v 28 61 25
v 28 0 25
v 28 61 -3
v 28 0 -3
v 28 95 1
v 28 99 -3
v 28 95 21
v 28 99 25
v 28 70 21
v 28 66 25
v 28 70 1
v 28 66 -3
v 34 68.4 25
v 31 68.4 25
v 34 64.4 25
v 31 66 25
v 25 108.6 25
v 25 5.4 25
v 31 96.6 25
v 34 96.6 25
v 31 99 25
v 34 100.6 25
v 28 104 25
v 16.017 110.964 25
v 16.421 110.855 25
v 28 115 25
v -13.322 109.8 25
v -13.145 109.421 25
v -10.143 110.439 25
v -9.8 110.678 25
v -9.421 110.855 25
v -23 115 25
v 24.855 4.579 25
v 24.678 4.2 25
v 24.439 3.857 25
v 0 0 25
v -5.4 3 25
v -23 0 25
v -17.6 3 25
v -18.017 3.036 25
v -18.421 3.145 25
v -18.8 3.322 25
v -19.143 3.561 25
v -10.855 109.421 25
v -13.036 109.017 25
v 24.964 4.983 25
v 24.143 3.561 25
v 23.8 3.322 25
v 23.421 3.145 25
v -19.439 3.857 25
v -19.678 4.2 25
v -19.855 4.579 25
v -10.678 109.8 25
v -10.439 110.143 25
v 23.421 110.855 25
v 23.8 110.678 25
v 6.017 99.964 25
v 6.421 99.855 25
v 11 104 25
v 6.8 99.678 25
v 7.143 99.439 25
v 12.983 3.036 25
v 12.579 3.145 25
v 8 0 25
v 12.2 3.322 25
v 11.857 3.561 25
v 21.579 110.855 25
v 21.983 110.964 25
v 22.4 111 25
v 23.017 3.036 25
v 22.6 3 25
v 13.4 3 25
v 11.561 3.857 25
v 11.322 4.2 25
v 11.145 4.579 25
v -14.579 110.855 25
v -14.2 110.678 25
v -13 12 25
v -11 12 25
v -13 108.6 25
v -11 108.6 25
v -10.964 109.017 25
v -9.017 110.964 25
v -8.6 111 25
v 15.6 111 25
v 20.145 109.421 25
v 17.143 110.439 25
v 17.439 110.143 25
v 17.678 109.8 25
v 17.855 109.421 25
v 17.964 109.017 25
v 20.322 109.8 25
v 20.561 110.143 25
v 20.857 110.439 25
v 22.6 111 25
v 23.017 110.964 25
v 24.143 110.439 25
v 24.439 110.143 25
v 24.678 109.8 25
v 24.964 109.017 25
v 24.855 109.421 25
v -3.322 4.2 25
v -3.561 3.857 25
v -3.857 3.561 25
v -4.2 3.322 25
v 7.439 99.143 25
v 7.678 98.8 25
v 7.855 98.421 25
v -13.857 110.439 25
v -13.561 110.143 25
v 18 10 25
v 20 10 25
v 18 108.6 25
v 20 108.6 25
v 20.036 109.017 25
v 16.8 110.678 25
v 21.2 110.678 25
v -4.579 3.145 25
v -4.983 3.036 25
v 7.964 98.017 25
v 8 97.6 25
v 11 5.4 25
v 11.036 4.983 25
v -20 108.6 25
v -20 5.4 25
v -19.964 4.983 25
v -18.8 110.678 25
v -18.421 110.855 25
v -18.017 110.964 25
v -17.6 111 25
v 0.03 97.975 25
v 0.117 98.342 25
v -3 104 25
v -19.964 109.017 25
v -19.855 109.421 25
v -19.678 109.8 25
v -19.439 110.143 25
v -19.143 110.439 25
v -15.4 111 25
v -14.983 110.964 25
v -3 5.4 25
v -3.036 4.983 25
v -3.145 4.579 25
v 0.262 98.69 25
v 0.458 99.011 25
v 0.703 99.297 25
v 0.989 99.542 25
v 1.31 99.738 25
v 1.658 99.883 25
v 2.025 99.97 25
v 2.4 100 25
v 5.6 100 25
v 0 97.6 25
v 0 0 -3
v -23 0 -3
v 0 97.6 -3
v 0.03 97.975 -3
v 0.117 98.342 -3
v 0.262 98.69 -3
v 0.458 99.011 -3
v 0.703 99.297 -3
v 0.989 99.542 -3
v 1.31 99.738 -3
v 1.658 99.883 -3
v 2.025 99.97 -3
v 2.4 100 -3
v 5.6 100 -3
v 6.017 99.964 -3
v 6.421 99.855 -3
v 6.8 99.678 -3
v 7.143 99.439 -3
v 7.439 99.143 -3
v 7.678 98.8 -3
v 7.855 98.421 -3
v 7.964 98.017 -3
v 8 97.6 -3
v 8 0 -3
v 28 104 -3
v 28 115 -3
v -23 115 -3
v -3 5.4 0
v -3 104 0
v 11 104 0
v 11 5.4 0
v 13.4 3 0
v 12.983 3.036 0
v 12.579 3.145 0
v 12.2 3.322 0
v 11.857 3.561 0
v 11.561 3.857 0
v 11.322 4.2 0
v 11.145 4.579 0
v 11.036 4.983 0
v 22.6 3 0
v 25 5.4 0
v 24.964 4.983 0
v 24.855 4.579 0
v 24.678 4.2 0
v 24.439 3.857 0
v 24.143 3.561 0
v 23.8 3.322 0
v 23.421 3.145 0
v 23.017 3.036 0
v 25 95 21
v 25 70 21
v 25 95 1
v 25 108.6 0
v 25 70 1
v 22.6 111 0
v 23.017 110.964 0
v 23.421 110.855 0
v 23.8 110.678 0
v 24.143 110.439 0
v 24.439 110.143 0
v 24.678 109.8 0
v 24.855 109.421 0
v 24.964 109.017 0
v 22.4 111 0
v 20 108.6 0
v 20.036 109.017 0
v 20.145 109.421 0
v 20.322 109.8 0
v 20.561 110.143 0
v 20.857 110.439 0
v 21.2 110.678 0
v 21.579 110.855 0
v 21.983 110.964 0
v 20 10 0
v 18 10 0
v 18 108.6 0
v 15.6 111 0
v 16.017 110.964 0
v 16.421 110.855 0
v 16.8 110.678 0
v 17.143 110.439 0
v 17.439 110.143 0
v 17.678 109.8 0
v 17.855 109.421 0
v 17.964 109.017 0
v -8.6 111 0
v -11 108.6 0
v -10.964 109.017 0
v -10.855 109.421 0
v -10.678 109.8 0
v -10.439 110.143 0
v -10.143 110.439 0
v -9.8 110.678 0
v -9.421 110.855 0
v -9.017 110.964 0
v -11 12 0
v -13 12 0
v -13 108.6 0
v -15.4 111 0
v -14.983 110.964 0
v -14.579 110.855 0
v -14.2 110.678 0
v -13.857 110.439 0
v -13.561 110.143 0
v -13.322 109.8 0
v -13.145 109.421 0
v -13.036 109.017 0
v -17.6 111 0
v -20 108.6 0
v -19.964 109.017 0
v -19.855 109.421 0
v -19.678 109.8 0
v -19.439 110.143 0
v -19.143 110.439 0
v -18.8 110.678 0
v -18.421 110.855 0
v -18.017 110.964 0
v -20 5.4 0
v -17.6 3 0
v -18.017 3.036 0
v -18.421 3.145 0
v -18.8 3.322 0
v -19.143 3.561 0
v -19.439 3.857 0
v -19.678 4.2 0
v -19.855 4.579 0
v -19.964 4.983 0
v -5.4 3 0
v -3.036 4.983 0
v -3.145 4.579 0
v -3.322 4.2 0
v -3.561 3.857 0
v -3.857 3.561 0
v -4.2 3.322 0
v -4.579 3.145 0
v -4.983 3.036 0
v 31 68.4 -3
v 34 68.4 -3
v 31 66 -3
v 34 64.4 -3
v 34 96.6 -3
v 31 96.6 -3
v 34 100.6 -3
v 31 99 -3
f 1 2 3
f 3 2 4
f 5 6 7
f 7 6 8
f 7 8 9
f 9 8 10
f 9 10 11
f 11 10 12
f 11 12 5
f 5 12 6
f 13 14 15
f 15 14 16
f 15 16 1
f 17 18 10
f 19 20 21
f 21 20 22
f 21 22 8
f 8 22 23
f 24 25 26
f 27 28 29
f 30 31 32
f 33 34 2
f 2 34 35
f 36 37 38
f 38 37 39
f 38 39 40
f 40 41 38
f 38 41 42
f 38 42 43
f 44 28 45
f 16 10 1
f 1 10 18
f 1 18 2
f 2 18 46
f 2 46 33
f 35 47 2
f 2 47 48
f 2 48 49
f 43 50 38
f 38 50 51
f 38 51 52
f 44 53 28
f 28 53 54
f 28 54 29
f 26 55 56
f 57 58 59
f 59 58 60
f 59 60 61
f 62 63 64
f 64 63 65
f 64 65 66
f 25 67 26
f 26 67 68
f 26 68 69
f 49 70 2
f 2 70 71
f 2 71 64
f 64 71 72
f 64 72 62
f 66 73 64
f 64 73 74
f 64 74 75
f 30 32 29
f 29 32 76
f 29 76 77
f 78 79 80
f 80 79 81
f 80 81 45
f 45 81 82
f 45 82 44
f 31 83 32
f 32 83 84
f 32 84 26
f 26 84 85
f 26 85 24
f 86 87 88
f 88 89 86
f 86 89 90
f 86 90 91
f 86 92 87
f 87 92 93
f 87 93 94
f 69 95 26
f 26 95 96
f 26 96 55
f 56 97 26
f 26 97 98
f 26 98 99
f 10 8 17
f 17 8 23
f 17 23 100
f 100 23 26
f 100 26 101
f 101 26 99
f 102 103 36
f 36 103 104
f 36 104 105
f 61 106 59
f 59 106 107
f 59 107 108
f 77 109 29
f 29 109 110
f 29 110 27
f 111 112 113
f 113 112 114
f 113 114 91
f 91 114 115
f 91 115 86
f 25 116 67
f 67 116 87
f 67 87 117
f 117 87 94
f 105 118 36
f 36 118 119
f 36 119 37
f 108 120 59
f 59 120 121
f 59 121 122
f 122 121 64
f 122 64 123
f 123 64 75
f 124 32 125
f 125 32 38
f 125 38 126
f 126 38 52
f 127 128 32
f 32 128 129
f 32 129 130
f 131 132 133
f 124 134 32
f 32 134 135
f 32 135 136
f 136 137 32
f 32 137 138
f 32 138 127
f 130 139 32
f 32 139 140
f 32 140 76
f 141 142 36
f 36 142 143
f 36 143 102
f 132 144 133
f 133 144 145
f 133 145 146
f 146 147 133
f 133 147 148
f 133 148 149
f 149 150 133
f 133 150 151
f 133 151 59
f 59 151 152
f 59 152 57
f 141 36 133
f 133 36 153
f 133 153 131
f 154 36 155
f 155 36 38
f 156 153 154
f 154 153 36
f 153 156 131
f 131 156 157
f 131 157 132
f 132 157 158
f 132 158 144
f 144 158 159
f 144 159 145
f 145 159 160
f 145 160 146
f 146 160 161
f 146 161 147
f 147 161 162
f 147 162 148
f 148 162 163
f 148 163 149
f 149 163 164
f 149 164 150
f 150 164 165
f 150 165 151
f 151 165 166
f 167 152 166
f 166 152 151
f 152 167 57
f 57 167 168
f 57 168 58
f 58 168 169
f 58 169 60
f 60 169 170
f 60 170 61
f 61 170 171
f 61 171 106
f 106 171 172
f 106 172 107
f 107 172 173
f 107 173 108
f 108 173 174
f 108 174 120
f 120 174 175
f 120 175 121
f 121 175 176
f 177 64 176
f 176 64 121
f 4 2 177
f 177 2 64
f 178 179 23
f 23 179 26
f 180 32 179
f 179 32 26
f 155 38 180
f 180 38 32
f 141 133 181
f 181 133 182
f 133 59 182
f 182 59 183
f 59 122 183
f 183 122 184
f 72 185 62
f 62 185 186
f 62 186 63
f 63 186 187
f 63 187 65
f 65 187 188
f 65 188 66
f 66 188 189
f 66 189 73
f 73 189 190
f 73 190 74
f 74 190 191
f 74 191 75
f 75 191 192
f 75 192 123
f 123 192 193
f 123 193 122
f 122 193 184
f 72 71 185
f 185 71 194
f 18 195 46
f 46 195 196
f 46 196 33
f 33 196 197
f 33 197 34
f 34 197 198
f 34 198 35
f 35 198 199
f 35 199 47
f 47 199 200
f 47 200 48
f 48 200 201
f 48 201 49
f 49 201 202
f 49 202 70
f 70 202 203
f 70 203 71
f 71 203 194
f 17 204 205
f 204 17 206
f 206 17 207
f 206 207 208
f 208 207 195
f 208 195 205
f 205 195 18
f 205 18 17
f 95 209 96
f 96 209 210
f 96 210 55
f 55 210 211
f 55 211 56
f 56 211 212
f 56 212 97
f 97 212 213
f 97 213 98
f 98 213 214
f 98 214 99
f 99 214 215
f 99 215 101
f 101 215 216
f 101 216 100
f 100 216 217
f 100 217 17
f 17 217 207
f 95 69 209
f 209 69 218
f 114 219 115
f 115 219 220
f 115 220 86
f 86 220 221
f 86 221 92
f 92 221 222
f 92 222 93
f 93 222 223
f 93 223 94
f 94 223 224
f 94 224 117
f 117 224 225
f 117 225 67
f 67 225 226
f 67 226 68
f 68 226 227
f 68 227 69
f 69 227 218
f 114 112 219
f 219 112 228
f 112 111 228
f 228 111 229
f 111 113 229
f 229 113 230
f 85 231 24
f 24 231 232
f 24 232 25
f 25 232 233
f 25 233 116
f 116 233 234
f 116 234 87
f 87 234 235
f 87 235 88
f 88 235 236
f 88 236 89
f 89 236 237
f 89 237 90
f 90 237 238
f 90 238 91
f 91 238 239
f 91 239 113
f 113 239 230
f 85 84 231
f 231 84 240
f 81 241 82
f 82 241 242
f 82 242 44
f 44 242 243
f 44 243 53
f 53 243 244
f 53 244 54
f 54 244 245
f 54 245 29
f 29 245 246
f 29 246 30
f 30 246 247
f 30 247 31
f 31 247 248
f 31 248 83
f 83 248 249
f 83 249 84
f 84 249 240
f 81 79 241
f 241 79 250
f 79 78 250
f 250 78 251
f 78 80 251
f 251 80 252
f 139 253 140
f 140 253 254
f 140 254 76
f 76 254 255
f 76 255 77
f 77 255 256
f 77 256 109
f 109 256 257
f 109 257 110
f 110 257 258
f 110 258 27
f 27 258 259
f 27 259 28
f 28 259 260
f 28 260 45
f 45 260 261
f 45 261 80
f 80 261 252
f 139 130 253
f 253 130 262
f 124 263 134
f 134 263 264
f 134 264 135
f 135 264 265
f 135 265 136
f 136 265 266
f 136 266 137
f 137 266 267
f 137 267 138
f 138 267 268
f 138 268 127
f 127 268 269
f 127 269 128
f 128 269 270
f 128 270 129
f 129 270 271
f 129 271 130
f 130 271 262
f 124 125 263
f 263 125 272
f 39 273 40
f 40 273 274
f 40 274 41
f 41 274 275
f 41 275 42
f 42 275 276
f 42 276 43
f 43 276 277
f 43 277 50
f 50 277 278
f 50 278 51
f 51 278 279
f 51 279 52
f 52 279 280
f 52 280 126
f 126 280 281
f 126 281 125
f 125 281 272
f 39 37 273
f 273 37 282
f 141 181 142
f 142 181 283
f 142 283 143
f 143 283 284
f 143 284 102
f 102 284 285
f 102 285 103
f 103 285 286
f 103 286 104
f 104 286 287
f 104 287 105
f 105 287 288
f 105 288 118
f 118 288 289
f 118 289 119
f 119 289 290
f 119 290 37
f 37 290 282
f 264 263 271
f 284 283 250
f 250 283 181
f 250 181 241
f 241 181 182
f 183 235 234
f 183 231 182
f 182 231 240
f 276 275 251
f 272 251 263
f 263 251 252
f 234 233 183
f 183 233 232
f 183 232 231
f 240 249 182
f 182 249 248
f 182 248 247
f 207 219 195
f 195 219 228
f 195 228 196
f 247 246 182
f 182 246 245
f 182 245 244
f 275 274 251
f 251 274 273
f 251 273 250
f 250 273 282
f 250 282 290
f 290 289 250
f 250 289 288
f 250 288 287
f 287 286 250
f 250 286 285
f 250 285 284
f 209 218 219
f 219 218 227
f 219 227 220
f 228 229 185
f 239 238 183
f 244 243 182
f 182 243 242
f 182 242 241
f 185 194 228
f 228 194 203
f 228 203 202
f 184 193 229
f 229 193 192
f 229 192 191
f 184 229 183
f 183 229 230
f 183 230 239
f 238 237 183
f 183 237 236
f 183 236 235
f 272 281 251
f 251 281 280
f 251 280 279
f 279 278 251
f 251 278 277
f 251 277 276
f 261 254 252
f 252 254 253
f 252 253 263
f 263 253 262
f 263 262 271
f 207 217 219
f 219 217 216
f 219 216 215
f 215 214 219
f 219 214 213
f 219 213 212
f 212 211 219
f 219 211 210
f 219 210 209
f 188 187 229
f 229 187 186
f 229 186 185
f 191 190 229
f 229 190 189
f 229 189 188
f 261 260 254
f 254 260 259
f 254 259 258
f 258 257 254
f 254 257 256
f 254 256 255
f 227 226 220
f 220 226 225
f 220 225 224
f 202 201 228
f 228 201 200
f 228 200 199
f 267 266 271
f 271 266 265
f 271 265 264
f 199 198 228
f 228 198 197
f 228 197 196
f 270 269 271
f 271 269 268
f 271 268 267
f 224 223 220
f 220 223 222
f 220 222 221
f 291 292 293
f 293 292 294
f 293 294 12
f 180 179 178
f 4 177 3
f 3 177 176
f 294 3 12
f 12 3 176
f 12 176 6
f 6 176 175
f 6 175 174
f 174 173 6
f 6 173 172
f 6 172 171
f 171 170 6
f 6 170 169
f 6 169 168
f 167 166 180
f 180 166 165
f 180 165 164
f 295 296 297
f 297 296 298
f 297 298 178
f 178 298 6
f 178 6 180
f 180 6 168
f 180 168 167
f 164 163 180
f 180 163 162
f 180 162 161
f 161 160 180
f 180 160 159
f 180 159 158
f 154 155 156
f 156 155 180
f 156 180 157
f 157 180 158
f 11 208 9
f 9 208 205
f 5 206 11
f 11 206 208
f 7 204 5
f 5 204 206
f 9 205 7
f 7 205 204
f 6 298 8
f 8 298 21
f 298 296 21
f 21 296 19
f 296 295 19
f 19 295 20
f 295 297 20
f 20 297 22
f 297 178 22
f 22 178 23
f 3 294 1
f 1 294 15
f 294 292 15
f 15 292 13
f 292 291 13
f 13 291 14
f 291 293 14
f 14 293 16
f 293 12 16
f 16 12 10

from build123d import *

# Parameters (mm, degrees)
BOSS_EXTRUDE1_DEPTH = 25
BOSS_EXTRUDE2_START = -3
BOSS_EXTRUDE2_DEPTH = 3
CUT_EXTRUDE1_REACH  = 130.261
SKETCH3_W           = 20
SKETCH3_H           = 25
BOSS_EXTRUDE3_DEPTH = 28


with BuildPart() as part:
    # Sketch1 → Boss-Extrude1 (new body)
    with BuildSketch(Plane.XY):
        with BuildLine():
            Line((0, 0), (0, 97.6))
            ThreePointArc((0, 97.6), (0.702943725, 99.297056275), (2.4, 100))
            Line((2.4, 100), (5.6, 100))
            ThreePointArc((5.6, 100), (7.297056275, 99.297056275), (8, 97.6))
            Line((8, 97.6), (8, 0))
            Line((8, 0), (28, 0))
            Line((28, 0), (28, 115))
            Line((28, 115), (18, 115))
            Line((18, 115), (-10, 115))
            Line((-10, 115), (-23, 115))
            Line((-23, 115), (-23, 0))
            Line((-23, 0), (0, 0))
        make_face()
        with BuildLine():
            Line((18, 108.6), (18, 10))
            Line((18, 10), (20, 10))
            Line((20, 10), (20, 108.6))
            ThreePointArc((20, 108.6), (20.702943725, 110.297056275), (22.4, 111))
            Line((22.4, 111), (22.6, 111))
            ThreePointArc((22.6, 111), (24.297056275, 110.297056275), (25, 108.6))
            Line((25, 108.6), (25, 5.4))
            ThreePointArc((25, 5.4), (24.297056275, 3.702943725), (22.6, 3))
            Line((22.6, 3), (13.4, 3))
            ThreePointArc((13.4, 3), (11.702943725, 3.702943725), (11, 5.4))
            Line((11, 5.4), (11, 104))
            Line((11, 104), (-3, 104))
            Line((-3, 104), (-3, 5.4))
            ThreePointArc((-3, 5.4), (-3.702943725, 3.702943725), (-5.4, 3))
            Line((-5.4, 3), (-17.6, 3))
            ThreePointArc((-17.6, 3), (-19.297056275, 3.702943725), (-20, 5.4))
            Line((-20, 5.4), (-20, 108.6))
            ThreePointArc((-20, 108.6), (-19.297056275, 110.297056275), (-17.6, 111))
            Line((-17.6, 111), (-15.4, 111))
            ThreePointArc((-15.4, 111), (-13.702943725, 110.297056275), (-13, 108.6))
            Line((-13, 108.6), (-13, 12))
            Line((-13, 12), (-11, 12))
            Line((-11, 12), (-11, 108.6))
            ThreePointArc((-11, 108.6), (-10.297056275, 110.297056275), (-8.6, 111))
            Line((-8.6, 111), (15.6, 111))
            ThreePointArc((15.6, 111), (17.297056275, 110.297056275), (18, 108.6))
        make_face(mode=Mode.SUBTRACT)
    extrude(amount=BOSS_EXTRUDE1_DEPTH)

    # Sketch2 → Boss-Extrude2 (add)
    with BuildSketch(Plane.XY.offset(BOSS_EXTRUDE2_START)):
        with BuildLine():
            Line((28, 115), (-23, 115))
            Line((-23, 115), (-23, 0))
            Line((-23, 0), (0, 0))
            Line((0, 0), (0, 97.6))
            ThreePointArc((0, 97.6), (0.702943725, 99.297056275), (2.4, 100))
            Line((2.4, 100), (5.6, 100))
            ThreePointArc((5.6, 100), (7.297056275, 99.297056275), (8, 97.6))
            Line((8, 97.6), (8, 0))
            Line((8, 0), (28, 0))
            Line((28, 0), (28, 115))
        make_face()
    extrude(amount=BOSS_EXTRUDE2_DEPTH)

    # Sketch3 → Cut-Extrude1 (cut, up to next)
    with BuildSketch(Plane(origin=(28, 0, 0), x_dir=(0, 0, -1), z_dir=(1, 0, 0)), mode=Mode.PRIVATE) as cut_extrude1_sk1:
        with Locations((-11, 82.5)):
            Rectangle(SKETCH3_W, SKETCH3_H)
    cut_extrude1_tool1 = extrude(cut_extrude1_sk1.sketch, amount=-CUT_EXTRUDE1_REACH, mode=Mode.PRIVATE) & part.part
    add(cut_extrude1_tool1.solids().sort_by_distance((28, 82.5, 11))[0], mode=Mode.SUBTRACT)

    # Sketch4 → Boss-Extrude3 (add)
    with BuildSketch(Plane(origin=(0, 0, -3), x_dir=(-1, 0, 0), z_dir=(0, 0, -1))):
        Polygon((-28, 99), (-31, 99), (-31, 96.6), (-34, 96.6), (-34, 100.6), (-28, 104), align=None)
        Polygon((-28, 61), (-28, 66), (-31, 66), (-31, 68.4), (-34, 68.4), (-34, 64.4), align=None)
    extrude(amount=-BOSS_EXTRUDE3_DEPTH)


solid = part.part
